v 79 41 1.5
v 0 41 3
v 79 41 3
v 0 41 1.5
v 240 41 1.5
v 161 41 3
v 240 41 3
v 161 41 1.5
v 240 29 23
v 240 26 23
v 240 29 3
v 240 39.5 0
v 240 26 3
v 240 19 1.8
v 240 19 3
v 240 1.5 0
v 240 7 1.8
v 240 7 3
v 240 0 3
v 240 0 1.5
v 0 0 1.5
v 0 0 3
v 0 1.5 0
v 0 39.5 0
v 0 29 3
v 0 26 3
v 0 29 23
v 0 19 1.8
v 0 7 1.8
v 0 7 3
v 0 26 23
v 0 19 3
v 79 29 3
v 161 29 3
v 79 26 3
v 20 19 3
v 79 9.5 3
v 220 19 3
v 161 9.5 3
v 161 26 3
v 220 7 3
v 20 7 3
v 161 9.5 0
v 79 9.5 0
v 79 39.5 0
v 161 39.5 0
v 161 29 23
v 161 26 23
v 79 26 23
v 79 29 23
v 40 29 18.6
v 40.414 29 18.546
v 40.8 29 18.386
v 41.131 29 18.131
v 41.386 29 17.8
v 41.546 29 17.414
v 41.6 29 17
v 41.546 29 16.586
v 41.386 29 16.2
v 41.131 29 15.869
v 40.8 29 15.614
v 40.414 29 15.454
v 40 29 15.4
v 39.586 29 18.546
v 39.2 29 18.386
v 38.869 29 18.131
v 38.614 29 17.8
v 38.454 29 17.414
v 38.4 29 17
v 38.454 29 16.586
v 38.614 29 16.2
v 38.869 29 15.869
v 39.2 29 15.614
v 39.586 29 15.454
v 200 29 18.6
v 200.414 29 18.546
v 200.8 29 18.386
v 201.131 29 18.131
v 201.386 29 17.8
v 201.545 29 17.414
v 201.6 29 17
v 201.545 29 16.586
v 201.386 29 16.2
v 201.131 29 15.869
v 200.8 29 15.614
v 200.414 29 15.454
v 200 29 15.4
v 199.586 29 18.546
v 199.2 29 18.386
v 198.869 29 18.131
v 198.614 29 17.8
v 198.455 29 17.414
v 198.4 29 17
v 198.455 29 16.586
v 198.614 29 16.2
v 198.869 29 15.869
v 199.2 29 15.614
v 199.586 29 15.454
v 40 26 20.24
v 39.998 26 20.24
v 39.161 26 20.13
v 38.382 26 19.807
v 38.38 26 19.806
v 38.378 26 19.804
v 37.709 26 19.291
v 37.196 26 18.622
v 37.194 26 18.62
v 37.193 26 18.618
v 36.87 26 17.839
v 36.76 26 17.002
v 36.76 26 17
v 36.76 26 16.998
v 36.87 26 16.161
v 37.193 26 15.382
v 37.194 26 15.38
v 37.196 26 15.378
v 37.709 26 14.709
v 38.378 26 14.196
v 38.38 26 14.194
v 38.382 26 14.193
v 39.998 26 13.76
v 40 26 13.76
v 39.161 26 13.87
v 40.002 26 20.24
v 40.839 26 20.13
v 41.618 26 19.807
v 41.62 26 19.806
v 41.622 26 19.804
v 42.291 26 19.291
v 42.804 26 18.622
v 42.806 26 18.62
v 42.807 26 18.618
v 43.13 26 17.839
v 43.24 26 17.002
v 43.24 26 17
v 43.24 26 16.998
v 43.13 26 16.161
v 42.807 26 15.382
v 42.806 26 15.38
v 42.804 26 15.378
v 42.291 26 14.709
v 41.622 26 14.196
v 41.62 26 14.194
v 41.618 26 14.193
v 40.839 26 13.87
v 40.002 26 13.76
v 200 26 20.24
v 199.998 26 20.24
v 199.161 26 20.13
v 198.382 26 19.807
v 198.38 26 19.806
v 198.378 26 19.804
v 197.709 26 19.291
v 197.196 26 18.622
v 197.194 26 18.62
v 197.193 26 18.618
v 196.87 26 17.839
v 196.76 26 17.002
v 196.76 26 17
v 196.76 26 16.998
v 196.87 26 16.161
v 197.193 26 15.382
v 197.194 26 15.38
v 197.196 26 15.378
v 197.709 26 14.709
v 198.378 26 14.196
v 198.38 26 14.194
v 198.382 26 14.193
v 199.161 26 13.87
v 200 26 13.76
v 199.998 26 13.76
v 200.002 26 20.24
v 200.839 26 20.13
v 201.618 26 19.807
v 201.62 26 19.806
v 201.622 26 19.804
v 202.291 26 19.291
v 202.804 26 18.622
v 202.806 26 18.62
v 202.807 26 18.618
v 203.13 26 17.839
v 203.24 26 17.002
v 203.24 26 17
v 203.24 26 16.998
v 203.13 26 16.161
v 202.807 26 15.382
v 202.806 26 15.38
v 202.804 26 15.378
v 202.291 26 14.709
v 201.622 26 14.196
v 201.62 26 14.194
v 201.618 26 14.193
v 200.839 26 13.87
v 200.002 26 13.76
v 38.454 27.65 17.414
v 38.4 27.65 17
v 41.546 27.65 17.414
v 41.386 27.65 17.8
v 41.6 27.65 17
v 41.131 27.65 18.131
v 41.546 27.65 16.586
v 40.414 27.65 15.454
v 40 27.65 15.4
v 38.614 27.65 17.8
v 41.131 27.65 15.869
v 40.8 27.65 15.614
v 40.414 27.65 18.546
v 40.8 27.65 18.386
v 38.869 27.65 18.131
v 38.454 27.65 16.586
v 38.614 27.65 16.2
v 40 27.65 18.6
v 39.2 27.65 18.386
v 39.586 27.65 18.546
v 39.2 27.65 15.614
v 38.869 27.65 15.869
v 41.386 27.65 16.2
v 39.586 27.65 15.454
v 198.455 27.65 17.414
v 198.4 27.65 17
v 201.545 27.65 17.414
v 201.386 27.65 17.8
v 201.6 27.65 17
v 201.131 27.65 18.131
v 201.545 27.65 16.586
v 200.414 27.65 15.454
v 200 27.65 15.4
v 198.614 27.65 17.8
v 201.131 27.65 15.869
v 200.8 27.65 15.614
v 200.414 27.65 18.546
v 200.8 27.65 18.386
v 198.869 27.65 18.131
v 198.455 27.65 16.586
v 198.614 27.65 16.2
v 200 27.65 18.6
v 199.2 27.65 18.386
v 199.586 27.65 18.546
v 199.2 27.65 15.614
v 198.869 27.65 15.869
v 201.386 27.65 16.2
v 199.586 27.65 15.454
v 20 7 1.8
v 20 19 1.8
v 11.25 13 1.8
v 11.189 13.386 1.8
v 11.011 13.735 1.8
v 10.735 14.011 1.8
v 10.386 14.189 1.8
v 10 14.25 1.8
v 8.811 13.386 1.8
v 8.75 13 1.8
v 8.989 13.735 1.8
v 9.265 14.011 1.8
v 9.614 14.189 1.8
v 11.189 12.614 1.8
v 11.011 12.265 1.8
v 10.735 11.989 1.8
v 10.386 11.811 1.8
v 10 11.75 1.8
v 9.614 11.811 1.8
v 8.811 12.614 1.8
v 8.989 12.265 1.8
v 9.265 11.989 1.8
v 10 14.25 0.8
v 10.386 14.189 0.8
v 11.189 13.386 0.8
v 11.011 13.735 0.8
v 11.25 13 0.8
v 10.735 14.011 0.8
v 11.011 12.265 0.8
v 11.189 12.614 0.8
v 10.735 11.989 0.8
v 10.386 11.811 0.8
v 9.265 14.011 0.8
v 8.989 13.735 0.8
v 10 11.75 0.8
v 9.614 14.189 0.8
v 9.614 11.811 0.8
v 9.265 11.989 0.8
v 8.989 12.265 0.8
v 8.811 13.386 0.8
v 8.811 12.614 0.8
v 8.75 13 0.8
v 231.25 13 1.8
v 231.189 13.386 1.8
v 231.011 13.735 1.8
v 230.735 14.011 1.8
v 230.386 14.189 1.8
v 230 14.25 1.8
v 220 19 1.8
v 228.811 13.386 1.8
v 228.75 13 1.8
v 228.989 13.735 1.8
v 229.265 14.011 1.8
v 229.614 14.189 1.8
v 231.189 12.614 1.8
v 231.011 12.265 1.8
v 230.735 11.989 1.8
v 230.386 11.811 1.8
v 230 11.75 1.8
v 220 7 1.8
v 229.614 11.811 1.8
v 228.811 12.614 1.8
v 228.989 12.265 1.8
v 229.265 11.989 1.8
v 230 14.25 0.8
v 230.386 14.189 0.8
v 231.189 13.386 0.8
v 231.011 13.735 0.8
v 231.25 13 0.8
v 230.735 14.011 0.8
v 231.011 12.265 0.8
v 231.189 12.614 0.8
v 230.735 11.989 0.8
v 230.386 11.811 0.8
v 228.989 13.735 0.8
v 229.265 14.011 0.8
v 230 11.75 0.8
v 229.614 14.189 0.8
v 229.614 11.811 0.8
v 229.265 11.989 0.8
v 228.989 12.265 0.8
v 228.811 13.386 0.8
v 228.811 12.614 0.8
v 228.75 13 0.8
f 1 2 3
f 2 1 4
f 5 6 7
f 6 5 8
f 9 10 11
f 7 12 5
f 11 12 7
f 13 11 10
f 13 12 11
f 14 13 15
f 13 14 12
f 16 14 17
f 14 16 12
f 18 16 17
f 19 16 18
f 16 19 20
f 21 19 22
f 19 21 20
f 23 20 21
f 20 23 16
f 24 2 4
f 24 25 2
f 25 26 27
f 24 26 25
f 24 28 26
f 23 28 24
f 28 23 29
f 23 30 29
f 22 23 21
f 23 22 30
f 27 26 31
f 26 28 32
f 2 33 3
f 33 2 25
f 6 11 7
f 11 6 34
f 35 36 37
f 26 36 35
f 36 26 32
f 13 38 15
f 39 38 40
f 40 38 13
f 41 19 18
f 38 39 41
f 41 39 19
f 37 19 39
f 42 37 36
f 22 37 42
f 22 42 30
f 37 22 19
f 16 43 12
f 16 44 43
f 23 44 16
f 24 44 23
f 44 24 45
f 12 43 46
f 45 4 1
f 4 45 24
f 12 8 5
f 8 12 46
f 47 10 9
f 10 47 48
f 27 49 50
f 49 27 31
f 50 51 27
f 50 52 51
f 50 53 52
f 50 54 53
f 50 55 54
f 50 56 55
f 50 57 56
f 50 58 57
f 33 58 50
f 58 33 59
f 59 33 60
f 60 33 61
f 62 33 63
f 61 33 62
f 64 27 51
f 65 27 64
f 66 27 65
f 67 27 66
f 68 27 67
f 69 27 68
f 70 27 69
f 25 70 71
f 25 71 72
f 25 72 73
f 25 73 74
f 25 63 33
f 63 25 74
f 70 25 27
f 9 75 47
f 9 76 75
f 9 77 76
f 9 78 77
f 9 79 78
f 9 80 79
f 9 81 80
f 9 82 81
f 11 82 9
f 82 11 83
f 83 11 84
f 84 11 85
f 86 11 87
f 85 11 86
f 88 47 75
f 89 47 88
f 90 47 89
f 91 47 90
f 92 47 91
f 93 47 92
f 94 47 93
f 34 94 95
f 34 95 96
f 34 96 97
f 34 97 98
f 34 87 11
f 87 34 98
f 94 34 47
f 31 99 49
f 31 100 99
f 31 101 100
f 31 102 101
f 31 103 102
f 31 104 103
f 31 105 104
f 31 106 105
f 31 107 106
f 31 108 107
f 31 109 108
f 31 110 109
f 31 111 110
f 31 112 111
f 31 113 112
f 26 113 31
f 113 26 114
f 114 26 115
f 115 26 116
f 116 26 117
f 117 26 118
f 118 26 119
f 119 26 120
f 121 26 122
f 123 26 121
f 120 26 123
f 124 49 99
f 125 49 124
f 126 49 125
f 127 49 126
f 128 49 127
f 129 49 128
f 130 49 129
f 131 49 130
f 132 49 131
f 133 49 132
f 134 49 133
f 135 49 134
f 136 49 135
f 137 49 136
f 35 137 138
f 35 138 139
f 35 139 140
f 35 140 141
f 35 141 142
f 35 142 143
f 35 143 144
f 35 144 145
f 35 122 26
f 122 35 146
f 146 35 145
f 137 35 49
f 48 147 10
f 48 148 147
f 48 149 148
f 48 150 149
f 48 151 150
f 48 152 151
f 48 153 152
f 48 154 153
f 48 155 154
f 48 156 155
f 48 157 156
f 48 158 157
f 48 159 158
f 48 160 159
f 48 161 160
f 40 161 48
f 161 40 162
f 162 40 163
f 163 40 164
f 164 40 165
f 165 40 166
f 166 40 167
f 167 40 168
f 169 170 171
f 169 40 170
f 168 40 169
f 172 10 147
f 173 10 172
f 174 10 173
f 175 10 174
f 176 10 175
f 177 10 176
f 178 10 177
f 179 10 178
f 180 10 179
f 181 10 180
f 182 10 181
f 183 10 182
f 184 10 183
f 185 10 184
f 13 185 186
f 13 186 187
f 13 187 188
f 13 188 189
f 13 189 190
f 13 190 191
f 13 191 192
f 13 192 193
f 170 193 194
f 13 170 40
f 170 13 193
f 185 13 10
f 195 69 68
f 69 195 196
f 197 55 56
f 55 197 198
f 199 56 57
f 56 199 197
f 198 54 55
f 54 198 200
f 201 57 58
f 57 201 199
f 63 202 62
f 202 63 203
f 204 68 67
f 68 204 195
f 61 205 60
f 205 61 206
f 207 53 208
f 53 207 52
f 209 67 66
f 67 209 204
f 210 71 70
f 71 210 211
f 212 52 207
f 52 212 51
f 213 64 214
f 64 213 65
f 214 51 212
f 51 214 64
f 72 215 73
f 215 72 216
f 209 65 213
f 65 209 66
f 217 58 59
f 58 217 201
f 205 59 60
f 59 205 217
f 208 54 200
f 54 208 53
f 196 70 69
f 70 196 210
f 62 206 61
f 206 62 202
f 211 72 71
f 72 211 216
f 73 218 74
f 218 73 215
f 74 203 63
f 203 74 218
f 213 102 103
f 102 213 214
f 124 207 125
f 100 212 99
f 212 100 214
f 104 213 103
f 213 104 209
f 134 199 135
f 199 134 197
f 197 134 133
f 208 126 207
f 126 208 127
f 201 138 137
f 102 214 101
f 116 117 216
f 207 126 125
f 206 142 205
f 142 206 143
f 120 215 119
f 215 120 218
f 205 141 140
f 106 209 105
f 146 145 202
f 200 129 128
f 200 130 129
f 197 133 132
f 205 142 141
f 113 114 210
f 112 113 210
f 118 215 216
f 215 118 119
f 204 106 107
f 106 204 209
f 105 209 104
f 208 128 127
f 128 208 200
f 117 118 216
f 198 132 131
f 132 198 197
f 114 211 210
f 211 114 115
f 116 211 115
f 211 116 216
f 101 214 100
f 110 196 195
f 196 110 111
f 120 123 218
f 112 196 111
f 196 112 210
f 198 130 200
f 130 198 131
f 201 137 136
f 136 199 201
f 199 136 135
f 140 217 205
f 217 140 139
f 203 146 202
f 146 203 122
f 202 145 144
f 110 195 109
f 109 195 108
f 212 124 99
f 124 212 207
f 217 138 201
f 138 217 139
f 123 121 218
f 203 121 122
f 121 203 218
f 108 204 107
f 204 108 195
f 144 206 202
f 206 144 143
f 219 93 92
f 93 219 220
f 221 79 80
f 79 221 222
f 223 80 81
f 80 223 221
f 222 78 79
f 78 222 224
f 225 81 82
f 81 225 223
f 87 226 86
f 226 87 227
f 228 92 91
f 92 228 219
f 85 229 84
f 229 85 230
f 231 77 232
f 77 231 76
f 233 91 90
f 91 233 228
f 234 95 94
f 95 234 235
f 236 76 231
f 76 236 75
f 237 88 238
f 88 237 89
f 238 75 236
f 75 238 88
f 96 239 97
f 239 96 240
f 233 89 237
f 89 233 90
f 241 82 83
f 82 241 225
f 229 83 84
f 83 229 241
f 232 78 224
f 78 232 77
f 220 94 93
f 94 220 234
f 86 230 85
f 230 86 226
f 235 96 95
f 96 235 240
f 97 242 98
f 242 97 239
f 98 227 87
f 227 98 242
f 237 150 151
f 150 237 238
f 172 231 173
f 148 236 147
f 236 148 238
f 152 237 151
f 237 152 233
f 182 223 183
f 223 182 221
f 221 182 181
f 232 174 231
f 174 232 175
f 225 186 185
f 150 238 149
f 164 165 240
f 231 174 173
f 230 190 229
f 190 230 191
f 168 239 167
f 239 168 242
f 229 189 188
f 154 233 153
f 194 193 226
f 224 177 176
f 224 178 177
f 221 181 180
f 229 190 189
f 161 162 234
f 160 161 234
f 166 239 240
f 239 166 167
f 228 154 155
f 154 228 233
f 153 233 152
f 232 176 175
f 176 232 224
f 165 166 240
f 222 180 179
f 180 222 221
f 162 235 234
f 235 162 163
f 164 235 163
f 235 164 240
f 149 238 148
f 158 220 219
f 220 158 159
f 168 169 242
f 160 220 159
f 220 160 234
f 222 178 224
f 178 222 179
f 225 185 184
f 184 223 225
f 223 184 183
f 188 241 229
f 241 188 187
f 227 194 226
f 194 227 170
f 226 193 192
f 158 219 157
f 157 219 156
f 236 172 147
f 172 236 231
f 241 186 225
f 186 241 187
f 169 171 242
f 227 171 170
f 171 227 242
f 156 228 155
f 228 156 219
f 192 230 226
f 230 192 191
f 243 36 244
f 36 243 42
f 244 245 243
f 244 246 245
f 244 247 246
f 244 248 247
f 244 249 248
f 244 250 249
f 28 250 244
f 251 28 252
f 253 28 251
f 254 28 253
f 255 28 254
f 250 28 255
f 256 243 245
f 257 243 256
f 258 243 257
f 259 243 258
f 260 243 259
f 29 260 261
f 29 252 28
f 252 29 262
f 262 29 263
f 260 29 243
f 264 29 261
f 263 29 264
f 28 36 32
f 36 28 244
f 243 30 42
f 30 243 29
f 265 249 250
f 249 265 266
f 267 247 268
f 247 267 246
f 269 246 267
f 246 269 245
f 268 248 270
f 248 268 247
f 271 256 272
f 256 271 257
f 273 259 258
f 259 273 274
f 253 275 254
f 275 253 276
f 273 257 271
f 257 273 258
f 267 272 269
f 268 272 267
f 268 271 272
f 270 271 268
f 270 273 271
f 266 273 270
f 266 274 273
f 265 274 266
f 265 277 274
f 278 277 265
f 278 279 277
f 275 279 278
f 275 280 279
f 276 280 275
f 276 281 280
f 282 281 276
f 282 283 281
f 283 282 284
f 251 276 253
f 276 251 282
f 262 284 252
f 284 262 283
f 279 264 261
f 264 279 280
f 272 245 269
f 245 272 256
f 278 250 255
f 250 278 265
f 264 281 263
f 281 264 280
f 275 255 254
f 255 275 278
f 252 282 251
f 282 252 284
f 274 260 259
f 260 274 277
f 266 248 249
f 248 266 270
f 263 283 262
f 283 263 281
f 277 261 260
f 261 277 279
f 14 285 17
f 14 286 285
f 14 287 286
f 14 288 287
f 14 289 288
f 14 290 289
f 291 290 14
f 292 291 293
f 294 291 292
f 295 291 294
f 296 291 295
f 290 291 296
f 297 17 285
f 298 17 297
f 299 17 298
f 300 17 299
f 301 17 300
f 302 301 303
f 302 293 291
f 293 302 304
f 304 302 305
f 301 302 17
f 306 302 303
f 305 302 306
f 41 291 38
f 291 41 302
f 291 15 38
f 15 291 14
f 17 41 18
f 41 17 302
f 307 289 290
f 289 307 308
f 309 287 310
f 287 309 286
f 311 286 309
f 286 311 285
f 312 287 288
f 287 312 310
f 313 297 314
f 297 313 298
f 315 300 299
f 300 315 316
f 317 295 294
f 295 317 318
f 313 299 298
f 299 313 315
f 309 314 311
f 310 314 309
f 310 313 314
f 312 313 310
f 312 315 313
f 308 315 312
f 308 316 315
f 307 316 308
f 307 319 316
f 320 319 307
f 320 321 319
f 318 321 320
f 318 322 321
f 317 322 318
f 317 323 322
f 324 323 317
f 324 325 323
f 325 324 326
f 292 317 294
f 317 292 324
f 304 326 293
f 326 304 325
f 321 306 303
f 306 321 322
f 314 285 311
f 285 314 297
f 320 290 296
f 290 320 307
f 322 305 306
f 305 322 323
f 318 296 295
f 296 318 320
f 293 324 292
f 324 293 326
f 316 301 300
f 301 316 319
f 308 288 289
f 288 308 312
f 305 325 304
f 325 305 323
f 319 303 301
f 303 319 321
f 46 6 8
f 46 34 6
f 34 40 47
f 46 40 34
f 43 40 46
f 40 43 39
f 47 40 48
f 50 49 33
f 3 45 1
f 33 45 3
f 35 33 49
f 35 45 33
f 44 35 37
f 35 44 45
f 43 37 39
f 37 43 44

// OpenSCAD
// file: wall-gap-common.scad
// Shared numbers and modules for every wall-gap trim piece. Change a number here and
// re-render all of them. Measurements in mm.
//
// Cross-section (across the strip): 0 is the wall, `gap` is the desk's edge, the strip
// rests `ontop` on the desk beyond that. A `lip` hangs into the gap against the desk's raw
// back edge and takes the #4 screws, 14 mm below the surface. Every end has a pocket on the
// underside, over the gap, for a connector tile (wall-gap-connector.scad) with two press-fit
// pins: butt two pieces together, push a tile up into both pockets, and the joint cannot
// step or bow. The pin holes are blind, so nothing shows on top.

gap   = 29;    // reach from the desk's edge to the wall: design gap 30 minus 1. Set to the smallest measured gap minus 1.
ontop = 12;    // how far it rests on the desk surface
th    = 3;     // plate thickness
lip   = 20;    // lip hanging into the gap
lip_t = 3;
chamf = 1.5;   // chamfer on the two long top edges (never on the ends, so butt joints stay hairlines)
screw = 3.2;   // #4 clearance
csk   = 6.5;
hole_z = -14;  // screw centre below the desk surface: the board's mid-plane

// connector pocket: on the underside of the gap part, at each end
pocket_l = 20; pocket_w = 12; pocket_d = 1.2;
pin_hole = 2.5; pin_depth = 1.0; pin_from_end = 10;
pocket_y = (gap - lip_t) / 2;   // centred across the gap part (between the wall edge and the lip)

module profile() { polygon([[0, 0], [gap + ontop, 0], [gap + ontop, th - chamf], [gap + ontop - chamf, th], [chamf, th], [0, th - chamf]]); }
module lip_holes(xs) { for (x = xs) translate([x, gap - lip_t - 1, hole_z]) rotate([-90, 0, 0]) { cylinder(d = screw, h = lip_t + 2, $fn = 24); translate([0, 0, 1 - 0.01]) cylinder(d1 = csk, d2 = screw, h = (csk - screw) / 2 + 0.01, $fn = 24); } }
// pockets at x = 0 (the start) and x = len (the end) of a piece running along x
module end_pockets(len) {
    for (e = [0, 1]) {
        x0 = e == 0 ? -1 : len - pocket_l;
        translate([x0, pocket_y - pocket_w / 2, -1]) cube([pocket_l + 1, pocket_w, pocket_d + 1]);
        xp = e == 0 ? pin_from_end : len - pin_from_end;
        translate([xp, pocket_y, -1]) cylinder(d = pin_hole, h = pocket_d + pin_depth + 1, $fn = 20);
    }
}
module plain_strip(len) {
    difference() {
        union() {
            rotate([90, 0, 90]) linear_extrude(len) profile();
            translate([0, gap - lip_t, -lip]) cube([len, lip_t, lip]);
        }
        lip_holes(len >= 120 ? [40, len - 40] : [len / 2]);
        end_pockets(len);
    }
}
// main file
// Wall-gap strip with a clamp notch: the piece that runs from desk 28 cm to 52 cm along each
// wall edge, with an enclosed notch in its middle that wraps round the VIVO clamp's back.
// The clamp back is 80 mm long along the edge and projects 17.5 mm behind the desk edge
// (measured 21 Oct 2026). The notch is 82 mm wide (1 mm each side) and 19.5 mm deep from the
// desk's edge; its centre is exactly 120 mm from the piece's start, so butted against the
// 80 mm filler and the corner piece it sits on desk 40.0 cm, and the clamp itself locates it.
// A 9.5 mm bridge along the wall side still closes the gap behind the clamp. One screw each
// side of the notch; connector pockets at both ends. Two needed, one per wall (same part,
// turned round). The file is in PRINT orientation: top face down, lip up, no supports.

include <wall-gap-common.scad>
seg = 240;
clamp_len = 80; clamp_proj = 17.5; clear = 1; margin = 2;
notch_w = clamp_len + 2 * clear; notch_d = clamp_proj + margin; notch_c = 120;
translate([0, 0, th]) mirror([0, 0, 1]) difference() {
    plain_strip(seg);
    translate([notch_c - notch_w / 2, gap - notch_d, -lip - 1]) cube([notch_w, ontop + notch_d + 1, lip + th + 2]);
}
